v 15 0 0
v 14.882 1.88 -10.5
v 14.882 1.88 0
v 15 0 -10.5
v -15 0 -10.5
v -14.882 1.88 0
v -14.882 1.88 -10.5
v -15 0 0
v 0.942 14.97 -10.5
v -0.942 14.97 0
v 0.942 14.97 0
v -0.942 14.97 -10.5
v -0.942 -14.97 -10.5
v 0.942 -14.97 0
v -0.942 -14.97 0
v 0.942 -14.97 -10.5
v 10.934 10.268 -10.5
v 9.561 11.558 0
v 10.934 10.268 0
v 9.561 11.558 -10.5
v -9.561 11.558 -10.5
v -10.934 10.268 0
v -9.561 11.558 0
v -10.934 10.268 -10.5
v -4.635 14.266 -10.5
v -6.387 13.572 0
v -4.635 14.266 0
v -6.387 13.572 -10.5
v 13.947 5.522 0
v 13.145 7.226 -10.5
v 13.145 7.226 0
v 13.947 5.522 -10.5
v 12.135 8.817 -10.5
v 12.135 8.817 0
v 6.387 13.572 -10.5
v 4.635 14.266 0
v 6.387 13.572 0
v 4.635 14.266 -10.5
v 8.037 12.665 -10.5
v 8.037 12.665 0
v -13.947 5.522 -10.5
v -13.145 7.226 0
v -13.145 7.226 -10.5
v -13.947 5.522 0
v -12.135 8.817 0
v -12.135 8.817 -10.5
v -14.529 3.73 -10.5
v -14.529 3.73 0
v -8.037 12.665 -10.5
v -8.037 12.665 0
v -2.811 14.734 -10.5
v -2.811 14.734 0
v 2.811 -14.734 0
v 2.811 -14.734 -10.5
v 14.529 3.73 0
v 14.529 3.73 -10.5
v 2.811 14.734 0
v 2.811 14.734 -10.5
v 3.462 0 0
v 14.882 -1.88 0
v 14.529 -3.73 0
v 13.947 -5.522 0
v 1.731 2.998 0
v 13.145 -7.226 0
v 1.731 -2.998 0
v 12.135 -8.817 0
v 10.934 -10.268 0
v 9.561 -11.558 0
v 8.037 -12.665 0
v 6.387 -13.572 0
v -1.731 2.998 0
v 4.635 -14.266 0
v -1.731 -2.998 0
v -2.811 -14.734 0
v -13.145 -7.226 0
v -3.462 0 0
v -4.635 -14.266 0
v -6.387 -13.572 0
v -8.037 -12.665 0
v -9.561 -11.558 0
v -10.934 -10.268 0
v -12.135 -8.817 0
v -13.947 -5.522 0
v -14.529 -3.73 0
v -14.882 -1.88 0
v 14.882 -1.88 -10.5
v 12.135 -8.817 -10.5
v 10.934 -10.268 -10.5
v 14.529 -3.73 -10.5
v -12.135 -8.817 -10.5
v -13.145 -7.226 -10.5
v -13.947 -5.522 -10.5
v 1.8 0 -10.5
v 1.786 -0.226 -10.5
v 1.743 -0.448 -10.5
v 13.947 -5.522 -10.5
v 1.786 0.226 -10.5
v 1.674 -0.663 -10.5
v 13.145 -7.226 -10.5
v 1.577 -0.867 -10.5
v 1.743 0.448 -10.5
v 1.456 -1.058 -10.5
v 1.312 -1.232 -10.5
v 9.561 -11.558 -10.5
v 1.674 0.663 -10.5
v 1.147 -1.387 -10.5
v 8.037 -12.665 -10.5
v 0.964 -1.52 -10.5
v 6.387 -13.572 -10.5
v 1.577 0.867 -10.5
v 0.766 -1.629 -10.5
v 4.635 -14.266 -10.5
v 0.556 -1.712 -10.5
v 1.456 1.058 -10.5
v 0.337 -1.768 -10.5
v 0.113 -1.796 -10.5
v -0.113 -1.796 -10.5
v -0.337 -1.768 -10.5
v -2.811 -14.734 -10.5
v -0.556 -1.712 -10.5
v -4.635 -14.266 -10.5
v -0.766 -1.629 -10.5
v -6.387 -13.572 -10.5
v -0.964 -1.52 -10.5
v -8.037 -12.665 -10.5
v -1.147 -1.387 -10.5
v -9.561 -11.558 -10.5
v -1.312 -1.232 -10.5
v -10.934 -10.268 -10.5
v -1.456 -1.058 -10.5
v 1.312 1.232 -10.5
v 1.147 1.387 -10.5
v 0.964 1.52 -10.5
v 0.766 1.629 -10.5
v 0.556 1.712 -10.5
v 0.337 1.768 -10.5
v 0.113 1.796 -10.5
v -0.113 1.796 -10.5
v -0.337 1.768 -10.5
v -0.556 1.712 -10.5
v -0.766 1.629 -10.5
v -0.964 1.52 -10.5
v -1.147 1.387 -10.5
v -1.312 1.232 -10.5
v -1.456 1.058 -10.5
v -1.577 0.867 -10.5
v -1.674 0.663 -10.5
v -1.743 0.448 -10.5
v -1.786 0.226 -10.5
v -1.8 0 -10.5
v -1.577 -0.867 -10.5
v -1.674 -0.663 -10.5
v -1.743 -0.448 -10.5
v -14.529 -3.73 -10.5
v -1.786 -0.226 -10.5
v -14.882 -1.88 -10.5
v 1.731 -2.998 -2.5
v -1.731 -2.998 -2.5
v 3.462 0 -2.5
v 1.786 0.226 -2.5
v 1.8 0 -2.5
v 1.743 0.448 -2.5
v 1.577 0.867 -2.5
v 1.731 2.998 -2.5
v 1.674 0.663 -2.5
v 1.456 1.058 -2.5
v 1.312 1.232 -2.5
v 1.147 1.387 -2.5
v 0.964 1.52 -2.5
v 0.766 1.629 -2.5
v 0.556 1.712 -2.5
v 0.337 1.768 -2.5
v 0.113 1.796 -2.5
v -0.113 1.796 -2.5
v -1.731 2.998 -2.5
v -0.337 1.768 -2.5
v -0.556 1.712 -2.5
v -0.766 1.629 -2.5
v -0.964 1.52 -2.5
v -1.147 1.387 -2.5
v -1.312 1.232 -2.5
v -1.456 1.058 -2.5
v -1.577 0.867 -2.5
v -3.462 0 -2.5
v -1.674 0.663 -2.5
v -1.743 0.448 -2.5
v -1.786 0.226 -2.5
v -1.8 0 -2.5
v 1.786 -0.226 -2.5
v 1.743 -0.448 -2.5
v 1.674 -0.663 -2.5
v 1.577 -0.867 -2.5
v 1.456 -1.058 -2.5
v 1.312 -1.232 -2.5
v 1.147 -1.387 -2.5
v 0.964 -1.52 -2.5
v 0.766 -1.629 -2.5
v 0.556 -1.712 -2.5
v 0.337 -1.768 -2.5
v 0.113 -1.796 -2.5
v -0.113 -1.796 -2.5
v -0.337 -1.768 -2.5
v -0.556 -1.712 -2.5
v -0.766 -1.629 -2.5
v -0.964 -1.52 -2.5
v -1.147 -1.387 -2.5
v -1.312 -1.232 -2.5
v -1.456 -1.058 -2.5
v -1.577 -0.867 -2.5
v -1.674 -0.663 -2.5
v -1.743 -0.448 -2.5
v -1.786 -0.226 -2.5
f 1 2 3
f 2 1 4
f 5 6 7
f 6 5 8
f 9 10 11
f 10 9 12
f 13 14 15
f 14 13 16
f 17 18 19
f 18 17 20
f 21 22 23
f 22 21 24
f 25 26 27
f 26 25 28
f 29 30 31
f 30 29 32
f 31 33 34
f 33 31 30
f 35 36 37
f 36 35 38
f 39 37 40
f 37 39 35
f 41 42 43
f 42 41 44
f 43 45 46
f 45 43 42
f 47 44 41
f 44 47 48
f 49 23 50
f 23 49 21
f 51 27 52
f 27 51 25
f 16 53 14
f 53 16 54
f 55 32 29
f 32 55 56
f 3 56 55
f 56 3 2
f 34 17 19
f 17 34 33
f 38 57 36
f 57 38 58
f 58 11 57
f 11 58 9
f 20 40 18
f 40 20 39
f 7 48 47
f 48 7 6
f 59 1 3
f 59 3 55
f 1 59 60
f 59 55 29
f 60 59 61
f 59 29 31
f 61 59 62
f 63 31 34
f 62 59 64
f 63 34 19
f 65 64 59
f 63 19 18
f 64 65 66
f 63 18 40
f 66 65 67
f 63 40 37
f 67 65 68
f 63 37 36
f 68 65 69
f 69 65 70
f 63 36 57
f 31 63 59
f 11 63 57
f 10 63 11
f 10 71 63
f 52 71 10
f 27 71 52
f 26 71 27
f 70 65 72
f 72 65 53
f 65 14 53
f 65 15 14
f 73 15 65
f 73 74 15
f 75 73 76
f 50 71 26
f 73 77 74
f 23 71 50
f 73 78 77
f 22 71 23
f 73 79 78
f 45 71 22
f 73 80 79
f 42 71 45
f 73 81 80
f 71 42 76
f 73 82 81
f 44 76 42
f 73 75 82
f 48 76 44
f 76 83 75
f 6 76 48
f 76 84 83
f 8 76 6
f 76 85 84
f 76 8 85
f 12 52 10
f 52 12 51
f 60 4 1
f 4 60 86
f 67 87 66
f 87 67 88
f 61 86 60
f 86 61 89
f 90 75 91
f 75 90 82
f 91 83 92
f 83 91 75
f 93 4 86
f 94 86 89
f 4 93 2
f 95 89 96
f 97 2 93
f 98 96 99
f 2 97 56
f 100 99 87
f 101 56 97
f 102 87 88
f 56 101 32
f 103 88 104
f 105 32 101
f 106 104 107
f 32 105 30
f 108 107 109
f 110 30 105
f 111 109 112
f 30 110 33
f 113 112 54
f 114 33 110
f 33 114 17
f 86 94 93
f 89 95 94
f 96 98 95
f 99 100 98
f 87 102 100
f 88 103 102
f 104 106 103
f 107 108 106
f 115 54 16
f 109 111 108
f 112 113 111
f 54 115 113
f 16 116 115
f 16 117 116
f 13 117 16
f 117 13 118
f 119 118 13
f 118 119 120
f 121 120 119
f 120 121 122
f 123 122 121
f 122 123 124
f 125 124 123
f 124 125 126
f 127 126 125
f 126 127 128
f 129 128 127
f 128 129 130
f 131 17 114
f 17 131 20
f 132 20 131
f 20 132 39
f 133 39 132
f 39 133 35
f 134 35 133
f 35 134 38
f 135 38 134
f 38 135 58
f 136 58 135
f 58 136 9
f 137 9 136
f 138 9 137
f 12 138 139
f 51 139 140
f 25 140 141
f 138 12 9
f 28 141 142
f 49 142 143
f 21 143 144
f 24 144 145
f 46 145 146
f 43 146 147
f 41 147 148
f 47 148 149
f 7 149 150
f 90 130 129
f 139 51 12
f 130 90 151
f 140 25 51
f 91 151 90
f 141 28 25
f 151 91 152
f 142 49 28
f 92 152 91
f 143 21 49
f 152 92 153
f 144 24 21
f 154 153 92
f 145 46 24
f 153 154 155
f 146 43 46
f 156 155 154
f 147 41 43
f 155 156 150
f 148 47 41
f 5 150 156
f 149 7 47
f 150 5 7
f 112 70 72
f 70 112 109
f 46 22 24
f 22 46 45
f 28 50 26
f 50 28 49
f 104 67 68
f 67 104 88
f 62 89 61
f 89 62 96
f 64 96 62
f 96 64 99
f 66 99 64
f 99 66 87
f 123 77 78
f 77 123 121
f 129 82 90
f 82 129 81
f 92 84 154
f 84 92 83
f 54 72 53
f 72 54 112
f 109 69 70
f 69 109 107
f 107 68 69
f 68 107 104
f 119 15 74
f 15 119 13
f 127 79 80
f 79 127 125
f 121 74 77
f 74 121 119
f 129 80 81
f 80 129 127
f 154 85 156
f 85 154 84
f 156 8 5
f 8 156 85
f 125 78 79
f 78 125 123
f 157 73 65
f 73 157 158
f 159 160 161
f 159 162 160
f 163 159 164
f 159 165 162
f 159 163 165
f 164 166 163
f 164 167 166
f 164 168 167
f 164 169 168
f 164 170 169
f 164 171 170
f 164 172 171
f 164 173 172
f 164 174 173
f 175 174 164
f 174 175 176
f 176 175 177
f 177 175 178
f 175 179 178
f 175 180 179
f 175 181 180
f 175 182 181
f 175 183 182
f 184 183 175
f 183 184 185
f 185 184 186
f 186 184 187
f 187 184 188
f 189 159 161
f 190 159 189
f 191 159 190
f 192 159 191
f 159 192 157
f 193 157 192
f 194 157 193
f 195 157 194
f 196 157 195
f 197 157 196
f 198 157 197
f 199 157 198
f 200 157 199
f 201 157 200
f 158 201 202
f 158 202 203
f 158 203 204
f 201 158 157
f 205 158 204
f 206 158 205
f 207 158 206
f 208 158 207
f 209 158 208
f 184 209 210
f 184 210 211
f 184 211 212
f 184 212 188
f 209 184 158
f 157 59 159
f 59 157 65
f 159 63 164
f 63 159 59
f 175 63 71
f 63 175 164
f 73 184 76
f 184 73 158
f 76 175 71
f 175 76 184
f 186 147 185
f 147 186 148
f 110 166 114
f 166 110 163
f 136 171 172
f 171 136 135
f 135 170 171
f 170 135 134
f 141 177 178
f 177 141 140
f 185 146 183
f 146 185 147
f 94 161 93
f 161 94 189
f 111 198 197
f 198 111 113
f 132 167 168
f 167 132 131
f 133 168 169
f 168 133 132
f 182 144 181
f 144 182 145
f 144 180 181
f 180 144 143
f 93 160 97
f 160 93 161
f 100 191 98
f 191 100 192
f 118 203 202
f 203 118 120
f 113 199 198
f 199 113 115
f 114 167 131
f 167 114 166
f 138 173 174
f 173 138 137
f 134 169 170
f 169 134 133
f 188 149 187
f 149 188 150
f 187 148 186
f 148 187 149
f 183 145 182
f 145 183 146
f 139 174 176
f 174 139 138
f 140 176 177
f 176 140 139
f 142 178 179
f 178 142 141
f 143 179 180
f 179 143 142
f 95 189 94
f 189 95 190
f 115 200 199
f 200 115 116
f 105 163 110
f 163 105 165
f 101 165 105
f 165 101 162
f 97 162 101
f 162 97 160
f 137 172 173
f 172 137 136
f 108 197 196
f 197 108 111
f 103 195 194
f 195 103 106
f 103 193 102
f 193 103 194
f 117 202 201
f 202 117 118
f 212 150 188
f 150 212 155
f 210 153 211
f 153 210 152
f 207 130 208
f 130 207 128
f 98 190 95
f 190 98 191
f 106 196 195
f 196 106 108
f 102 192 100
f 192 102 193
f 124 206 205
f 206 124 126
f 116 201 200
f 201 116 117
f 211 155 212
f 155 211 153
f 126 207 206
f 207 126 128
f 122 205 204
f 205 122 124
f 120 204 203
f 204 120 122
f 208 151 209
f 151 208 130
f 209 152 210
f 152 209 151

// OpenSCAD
$fn = 50;


difference() {
	union() {
		translate(v = [0, 0, -10.5000000000]) {
			cylinder(h = 10.5000000000, r = 15.0000000000);
		}
		translate(v = [0, 0, -9.0000000000]) {
			cylinder(h = 9, r = 2.8750000000);
		}
	}
	union() {
		translate(v = [0, 0, 0]) {
			rotate(a = [0, 0, 0]) {
				difference() {
					union() {
						translate(v = [0, 0, -2.5000000000]) {
							linear_extrude(height = 2.5000000000) {
								polygon(points = [[3.4620000000, 0.0000000000], [1.7310000000, 2.9981799479], [-1.7310000000, 2.9981799479], [-3.4620000000, 0.0000000000], [-1.7310000000, -2.9981799479], [1.7310000000, -2.9981799479]]);
							}
						}
					}
					union();
				}
			}
		}
		#translate(v = [0, 0, -100.0000000000]) {
			cylinder(h = 200, r = 1.8000000000);
		}
	}
}
